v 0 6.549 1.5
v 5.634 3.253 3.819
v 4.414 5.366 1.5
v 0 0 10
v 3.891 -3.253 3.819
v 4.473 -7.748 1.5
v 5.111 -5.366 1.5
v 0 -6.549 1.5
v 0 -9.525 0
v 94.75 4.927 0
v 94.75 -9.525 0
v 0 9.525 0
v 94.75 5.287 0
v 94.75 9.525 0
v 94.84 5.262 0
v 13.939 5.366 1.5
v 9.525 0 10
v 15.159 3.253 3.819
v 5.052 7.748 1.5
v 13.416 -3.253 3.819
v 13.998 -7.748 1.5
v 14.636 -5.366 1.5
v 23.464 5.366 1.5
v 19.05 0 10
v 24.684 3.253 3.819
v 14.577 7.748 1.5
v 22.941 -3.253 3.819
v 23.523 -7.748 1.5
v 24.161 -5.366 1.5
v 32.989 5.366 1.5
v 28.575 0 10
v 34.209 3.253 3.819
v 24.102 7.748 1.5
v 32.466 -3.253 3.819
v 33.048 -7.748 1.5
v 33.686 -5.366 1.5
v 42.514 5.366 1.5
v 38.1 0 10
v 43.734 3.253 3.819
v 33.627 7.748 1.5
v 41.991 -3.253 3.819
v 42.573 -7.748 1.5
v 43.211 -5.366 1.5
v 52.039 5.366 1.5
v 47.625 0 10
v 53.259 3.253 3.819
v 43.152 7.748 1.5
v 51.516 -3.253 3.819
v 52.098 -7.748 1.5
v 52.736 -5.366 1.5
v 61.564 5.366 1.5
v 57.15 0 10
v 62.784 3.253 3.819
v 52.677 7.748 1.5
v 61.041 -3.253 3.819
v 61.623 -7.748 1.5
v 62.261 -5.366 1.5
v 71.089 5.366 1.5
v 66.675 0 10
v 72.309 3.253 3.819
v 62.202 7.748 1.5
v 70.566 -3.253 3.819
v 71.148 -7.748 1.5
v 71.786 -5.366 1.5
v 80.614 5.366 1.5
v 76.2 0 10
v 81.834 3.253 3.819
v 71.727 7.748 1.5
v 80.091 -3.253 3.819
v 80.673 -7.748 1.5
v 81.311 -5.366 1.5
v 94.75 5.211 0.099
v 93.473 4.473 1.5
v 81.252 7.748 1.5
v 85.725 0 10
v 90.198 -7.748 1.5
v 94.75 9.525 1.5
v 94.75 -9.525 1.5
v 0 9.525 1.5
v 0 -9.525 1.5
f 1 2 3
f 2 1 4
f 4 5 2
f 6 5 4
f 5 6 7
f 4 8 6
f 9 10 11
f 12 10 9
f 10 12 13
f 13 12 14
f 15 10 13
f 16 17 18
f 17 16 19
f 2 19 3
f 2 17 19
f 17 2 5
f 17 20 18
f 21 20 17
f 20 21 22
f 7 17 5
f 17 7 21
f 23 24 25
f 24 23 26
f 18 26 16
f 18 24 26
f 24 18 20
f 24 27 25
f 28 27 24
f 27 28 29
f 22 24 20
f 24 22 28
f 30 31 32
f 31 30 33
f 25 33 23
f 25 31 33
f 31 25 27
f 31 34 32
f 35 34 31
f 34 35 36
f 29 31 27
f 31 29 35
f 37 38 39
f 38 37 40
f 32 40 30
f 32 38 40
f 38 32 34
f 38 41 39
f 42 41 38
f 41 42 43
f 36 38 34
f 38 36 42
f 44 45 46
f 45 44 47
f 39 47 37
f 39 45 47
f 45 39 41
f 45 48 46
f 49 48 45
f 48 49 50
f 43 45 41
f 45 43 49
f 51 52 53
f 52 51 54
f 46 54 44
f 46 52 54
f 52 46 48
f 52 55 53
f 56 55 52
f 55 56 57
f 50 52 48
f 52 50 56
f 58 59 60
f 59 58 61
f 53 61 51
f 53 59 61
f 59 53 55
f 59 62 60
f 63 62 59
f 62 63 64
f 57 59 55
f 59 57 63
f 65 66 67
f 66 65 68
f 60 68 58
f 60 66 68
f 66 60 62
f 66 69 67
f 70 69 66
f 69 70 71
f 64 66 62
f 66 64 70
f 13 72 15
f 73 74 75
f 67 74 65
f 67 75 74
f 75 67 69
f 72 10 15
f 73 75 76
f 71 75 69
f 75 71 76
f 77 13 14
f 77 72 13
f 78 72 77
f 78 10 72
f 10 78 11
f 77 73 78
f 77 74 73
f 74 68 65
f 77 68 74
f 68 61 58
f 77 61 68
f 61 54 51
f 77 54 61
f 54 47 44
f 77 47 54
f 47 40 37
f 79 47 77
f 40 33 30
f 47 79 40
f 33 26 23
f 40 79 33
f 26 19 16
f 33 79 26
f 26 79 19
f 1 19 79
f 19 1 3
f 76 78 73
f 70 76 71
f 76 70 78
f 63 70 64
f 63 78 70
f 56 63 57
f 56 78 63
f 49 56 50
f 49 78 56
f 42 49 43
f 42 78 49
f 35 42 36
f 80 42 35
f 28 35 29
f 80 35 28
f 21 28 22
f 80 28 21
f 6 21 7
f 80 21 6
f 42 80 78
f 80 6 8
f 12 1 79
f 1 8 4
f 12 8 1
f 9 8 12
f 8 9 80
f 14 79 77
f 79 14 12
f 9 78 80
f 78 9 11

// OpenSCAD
$r = 19.05 / 2;
$r2 = 11 / 2;
$d = 1.5;
$fn = 4;
$links = 9;

difference() {
    union() {
for (i = [0:$links]) {
    
     translate([i * $r, 0, 5]) {
        rotate([0, 0, 30]) {
            cylinder(10, $r+1, 0, true);
        }
     }
}
translate([0, -$r, 0]) {
     cube([94.75, $r*2 , $d], false);
}
}
translate([-10, 0, 0]) {
    cube([20, 20, 20], true);
}
translate([($links) * $r+14.4, 0, 11]) {
    //cube([20, 20, 20], true);
}
}
